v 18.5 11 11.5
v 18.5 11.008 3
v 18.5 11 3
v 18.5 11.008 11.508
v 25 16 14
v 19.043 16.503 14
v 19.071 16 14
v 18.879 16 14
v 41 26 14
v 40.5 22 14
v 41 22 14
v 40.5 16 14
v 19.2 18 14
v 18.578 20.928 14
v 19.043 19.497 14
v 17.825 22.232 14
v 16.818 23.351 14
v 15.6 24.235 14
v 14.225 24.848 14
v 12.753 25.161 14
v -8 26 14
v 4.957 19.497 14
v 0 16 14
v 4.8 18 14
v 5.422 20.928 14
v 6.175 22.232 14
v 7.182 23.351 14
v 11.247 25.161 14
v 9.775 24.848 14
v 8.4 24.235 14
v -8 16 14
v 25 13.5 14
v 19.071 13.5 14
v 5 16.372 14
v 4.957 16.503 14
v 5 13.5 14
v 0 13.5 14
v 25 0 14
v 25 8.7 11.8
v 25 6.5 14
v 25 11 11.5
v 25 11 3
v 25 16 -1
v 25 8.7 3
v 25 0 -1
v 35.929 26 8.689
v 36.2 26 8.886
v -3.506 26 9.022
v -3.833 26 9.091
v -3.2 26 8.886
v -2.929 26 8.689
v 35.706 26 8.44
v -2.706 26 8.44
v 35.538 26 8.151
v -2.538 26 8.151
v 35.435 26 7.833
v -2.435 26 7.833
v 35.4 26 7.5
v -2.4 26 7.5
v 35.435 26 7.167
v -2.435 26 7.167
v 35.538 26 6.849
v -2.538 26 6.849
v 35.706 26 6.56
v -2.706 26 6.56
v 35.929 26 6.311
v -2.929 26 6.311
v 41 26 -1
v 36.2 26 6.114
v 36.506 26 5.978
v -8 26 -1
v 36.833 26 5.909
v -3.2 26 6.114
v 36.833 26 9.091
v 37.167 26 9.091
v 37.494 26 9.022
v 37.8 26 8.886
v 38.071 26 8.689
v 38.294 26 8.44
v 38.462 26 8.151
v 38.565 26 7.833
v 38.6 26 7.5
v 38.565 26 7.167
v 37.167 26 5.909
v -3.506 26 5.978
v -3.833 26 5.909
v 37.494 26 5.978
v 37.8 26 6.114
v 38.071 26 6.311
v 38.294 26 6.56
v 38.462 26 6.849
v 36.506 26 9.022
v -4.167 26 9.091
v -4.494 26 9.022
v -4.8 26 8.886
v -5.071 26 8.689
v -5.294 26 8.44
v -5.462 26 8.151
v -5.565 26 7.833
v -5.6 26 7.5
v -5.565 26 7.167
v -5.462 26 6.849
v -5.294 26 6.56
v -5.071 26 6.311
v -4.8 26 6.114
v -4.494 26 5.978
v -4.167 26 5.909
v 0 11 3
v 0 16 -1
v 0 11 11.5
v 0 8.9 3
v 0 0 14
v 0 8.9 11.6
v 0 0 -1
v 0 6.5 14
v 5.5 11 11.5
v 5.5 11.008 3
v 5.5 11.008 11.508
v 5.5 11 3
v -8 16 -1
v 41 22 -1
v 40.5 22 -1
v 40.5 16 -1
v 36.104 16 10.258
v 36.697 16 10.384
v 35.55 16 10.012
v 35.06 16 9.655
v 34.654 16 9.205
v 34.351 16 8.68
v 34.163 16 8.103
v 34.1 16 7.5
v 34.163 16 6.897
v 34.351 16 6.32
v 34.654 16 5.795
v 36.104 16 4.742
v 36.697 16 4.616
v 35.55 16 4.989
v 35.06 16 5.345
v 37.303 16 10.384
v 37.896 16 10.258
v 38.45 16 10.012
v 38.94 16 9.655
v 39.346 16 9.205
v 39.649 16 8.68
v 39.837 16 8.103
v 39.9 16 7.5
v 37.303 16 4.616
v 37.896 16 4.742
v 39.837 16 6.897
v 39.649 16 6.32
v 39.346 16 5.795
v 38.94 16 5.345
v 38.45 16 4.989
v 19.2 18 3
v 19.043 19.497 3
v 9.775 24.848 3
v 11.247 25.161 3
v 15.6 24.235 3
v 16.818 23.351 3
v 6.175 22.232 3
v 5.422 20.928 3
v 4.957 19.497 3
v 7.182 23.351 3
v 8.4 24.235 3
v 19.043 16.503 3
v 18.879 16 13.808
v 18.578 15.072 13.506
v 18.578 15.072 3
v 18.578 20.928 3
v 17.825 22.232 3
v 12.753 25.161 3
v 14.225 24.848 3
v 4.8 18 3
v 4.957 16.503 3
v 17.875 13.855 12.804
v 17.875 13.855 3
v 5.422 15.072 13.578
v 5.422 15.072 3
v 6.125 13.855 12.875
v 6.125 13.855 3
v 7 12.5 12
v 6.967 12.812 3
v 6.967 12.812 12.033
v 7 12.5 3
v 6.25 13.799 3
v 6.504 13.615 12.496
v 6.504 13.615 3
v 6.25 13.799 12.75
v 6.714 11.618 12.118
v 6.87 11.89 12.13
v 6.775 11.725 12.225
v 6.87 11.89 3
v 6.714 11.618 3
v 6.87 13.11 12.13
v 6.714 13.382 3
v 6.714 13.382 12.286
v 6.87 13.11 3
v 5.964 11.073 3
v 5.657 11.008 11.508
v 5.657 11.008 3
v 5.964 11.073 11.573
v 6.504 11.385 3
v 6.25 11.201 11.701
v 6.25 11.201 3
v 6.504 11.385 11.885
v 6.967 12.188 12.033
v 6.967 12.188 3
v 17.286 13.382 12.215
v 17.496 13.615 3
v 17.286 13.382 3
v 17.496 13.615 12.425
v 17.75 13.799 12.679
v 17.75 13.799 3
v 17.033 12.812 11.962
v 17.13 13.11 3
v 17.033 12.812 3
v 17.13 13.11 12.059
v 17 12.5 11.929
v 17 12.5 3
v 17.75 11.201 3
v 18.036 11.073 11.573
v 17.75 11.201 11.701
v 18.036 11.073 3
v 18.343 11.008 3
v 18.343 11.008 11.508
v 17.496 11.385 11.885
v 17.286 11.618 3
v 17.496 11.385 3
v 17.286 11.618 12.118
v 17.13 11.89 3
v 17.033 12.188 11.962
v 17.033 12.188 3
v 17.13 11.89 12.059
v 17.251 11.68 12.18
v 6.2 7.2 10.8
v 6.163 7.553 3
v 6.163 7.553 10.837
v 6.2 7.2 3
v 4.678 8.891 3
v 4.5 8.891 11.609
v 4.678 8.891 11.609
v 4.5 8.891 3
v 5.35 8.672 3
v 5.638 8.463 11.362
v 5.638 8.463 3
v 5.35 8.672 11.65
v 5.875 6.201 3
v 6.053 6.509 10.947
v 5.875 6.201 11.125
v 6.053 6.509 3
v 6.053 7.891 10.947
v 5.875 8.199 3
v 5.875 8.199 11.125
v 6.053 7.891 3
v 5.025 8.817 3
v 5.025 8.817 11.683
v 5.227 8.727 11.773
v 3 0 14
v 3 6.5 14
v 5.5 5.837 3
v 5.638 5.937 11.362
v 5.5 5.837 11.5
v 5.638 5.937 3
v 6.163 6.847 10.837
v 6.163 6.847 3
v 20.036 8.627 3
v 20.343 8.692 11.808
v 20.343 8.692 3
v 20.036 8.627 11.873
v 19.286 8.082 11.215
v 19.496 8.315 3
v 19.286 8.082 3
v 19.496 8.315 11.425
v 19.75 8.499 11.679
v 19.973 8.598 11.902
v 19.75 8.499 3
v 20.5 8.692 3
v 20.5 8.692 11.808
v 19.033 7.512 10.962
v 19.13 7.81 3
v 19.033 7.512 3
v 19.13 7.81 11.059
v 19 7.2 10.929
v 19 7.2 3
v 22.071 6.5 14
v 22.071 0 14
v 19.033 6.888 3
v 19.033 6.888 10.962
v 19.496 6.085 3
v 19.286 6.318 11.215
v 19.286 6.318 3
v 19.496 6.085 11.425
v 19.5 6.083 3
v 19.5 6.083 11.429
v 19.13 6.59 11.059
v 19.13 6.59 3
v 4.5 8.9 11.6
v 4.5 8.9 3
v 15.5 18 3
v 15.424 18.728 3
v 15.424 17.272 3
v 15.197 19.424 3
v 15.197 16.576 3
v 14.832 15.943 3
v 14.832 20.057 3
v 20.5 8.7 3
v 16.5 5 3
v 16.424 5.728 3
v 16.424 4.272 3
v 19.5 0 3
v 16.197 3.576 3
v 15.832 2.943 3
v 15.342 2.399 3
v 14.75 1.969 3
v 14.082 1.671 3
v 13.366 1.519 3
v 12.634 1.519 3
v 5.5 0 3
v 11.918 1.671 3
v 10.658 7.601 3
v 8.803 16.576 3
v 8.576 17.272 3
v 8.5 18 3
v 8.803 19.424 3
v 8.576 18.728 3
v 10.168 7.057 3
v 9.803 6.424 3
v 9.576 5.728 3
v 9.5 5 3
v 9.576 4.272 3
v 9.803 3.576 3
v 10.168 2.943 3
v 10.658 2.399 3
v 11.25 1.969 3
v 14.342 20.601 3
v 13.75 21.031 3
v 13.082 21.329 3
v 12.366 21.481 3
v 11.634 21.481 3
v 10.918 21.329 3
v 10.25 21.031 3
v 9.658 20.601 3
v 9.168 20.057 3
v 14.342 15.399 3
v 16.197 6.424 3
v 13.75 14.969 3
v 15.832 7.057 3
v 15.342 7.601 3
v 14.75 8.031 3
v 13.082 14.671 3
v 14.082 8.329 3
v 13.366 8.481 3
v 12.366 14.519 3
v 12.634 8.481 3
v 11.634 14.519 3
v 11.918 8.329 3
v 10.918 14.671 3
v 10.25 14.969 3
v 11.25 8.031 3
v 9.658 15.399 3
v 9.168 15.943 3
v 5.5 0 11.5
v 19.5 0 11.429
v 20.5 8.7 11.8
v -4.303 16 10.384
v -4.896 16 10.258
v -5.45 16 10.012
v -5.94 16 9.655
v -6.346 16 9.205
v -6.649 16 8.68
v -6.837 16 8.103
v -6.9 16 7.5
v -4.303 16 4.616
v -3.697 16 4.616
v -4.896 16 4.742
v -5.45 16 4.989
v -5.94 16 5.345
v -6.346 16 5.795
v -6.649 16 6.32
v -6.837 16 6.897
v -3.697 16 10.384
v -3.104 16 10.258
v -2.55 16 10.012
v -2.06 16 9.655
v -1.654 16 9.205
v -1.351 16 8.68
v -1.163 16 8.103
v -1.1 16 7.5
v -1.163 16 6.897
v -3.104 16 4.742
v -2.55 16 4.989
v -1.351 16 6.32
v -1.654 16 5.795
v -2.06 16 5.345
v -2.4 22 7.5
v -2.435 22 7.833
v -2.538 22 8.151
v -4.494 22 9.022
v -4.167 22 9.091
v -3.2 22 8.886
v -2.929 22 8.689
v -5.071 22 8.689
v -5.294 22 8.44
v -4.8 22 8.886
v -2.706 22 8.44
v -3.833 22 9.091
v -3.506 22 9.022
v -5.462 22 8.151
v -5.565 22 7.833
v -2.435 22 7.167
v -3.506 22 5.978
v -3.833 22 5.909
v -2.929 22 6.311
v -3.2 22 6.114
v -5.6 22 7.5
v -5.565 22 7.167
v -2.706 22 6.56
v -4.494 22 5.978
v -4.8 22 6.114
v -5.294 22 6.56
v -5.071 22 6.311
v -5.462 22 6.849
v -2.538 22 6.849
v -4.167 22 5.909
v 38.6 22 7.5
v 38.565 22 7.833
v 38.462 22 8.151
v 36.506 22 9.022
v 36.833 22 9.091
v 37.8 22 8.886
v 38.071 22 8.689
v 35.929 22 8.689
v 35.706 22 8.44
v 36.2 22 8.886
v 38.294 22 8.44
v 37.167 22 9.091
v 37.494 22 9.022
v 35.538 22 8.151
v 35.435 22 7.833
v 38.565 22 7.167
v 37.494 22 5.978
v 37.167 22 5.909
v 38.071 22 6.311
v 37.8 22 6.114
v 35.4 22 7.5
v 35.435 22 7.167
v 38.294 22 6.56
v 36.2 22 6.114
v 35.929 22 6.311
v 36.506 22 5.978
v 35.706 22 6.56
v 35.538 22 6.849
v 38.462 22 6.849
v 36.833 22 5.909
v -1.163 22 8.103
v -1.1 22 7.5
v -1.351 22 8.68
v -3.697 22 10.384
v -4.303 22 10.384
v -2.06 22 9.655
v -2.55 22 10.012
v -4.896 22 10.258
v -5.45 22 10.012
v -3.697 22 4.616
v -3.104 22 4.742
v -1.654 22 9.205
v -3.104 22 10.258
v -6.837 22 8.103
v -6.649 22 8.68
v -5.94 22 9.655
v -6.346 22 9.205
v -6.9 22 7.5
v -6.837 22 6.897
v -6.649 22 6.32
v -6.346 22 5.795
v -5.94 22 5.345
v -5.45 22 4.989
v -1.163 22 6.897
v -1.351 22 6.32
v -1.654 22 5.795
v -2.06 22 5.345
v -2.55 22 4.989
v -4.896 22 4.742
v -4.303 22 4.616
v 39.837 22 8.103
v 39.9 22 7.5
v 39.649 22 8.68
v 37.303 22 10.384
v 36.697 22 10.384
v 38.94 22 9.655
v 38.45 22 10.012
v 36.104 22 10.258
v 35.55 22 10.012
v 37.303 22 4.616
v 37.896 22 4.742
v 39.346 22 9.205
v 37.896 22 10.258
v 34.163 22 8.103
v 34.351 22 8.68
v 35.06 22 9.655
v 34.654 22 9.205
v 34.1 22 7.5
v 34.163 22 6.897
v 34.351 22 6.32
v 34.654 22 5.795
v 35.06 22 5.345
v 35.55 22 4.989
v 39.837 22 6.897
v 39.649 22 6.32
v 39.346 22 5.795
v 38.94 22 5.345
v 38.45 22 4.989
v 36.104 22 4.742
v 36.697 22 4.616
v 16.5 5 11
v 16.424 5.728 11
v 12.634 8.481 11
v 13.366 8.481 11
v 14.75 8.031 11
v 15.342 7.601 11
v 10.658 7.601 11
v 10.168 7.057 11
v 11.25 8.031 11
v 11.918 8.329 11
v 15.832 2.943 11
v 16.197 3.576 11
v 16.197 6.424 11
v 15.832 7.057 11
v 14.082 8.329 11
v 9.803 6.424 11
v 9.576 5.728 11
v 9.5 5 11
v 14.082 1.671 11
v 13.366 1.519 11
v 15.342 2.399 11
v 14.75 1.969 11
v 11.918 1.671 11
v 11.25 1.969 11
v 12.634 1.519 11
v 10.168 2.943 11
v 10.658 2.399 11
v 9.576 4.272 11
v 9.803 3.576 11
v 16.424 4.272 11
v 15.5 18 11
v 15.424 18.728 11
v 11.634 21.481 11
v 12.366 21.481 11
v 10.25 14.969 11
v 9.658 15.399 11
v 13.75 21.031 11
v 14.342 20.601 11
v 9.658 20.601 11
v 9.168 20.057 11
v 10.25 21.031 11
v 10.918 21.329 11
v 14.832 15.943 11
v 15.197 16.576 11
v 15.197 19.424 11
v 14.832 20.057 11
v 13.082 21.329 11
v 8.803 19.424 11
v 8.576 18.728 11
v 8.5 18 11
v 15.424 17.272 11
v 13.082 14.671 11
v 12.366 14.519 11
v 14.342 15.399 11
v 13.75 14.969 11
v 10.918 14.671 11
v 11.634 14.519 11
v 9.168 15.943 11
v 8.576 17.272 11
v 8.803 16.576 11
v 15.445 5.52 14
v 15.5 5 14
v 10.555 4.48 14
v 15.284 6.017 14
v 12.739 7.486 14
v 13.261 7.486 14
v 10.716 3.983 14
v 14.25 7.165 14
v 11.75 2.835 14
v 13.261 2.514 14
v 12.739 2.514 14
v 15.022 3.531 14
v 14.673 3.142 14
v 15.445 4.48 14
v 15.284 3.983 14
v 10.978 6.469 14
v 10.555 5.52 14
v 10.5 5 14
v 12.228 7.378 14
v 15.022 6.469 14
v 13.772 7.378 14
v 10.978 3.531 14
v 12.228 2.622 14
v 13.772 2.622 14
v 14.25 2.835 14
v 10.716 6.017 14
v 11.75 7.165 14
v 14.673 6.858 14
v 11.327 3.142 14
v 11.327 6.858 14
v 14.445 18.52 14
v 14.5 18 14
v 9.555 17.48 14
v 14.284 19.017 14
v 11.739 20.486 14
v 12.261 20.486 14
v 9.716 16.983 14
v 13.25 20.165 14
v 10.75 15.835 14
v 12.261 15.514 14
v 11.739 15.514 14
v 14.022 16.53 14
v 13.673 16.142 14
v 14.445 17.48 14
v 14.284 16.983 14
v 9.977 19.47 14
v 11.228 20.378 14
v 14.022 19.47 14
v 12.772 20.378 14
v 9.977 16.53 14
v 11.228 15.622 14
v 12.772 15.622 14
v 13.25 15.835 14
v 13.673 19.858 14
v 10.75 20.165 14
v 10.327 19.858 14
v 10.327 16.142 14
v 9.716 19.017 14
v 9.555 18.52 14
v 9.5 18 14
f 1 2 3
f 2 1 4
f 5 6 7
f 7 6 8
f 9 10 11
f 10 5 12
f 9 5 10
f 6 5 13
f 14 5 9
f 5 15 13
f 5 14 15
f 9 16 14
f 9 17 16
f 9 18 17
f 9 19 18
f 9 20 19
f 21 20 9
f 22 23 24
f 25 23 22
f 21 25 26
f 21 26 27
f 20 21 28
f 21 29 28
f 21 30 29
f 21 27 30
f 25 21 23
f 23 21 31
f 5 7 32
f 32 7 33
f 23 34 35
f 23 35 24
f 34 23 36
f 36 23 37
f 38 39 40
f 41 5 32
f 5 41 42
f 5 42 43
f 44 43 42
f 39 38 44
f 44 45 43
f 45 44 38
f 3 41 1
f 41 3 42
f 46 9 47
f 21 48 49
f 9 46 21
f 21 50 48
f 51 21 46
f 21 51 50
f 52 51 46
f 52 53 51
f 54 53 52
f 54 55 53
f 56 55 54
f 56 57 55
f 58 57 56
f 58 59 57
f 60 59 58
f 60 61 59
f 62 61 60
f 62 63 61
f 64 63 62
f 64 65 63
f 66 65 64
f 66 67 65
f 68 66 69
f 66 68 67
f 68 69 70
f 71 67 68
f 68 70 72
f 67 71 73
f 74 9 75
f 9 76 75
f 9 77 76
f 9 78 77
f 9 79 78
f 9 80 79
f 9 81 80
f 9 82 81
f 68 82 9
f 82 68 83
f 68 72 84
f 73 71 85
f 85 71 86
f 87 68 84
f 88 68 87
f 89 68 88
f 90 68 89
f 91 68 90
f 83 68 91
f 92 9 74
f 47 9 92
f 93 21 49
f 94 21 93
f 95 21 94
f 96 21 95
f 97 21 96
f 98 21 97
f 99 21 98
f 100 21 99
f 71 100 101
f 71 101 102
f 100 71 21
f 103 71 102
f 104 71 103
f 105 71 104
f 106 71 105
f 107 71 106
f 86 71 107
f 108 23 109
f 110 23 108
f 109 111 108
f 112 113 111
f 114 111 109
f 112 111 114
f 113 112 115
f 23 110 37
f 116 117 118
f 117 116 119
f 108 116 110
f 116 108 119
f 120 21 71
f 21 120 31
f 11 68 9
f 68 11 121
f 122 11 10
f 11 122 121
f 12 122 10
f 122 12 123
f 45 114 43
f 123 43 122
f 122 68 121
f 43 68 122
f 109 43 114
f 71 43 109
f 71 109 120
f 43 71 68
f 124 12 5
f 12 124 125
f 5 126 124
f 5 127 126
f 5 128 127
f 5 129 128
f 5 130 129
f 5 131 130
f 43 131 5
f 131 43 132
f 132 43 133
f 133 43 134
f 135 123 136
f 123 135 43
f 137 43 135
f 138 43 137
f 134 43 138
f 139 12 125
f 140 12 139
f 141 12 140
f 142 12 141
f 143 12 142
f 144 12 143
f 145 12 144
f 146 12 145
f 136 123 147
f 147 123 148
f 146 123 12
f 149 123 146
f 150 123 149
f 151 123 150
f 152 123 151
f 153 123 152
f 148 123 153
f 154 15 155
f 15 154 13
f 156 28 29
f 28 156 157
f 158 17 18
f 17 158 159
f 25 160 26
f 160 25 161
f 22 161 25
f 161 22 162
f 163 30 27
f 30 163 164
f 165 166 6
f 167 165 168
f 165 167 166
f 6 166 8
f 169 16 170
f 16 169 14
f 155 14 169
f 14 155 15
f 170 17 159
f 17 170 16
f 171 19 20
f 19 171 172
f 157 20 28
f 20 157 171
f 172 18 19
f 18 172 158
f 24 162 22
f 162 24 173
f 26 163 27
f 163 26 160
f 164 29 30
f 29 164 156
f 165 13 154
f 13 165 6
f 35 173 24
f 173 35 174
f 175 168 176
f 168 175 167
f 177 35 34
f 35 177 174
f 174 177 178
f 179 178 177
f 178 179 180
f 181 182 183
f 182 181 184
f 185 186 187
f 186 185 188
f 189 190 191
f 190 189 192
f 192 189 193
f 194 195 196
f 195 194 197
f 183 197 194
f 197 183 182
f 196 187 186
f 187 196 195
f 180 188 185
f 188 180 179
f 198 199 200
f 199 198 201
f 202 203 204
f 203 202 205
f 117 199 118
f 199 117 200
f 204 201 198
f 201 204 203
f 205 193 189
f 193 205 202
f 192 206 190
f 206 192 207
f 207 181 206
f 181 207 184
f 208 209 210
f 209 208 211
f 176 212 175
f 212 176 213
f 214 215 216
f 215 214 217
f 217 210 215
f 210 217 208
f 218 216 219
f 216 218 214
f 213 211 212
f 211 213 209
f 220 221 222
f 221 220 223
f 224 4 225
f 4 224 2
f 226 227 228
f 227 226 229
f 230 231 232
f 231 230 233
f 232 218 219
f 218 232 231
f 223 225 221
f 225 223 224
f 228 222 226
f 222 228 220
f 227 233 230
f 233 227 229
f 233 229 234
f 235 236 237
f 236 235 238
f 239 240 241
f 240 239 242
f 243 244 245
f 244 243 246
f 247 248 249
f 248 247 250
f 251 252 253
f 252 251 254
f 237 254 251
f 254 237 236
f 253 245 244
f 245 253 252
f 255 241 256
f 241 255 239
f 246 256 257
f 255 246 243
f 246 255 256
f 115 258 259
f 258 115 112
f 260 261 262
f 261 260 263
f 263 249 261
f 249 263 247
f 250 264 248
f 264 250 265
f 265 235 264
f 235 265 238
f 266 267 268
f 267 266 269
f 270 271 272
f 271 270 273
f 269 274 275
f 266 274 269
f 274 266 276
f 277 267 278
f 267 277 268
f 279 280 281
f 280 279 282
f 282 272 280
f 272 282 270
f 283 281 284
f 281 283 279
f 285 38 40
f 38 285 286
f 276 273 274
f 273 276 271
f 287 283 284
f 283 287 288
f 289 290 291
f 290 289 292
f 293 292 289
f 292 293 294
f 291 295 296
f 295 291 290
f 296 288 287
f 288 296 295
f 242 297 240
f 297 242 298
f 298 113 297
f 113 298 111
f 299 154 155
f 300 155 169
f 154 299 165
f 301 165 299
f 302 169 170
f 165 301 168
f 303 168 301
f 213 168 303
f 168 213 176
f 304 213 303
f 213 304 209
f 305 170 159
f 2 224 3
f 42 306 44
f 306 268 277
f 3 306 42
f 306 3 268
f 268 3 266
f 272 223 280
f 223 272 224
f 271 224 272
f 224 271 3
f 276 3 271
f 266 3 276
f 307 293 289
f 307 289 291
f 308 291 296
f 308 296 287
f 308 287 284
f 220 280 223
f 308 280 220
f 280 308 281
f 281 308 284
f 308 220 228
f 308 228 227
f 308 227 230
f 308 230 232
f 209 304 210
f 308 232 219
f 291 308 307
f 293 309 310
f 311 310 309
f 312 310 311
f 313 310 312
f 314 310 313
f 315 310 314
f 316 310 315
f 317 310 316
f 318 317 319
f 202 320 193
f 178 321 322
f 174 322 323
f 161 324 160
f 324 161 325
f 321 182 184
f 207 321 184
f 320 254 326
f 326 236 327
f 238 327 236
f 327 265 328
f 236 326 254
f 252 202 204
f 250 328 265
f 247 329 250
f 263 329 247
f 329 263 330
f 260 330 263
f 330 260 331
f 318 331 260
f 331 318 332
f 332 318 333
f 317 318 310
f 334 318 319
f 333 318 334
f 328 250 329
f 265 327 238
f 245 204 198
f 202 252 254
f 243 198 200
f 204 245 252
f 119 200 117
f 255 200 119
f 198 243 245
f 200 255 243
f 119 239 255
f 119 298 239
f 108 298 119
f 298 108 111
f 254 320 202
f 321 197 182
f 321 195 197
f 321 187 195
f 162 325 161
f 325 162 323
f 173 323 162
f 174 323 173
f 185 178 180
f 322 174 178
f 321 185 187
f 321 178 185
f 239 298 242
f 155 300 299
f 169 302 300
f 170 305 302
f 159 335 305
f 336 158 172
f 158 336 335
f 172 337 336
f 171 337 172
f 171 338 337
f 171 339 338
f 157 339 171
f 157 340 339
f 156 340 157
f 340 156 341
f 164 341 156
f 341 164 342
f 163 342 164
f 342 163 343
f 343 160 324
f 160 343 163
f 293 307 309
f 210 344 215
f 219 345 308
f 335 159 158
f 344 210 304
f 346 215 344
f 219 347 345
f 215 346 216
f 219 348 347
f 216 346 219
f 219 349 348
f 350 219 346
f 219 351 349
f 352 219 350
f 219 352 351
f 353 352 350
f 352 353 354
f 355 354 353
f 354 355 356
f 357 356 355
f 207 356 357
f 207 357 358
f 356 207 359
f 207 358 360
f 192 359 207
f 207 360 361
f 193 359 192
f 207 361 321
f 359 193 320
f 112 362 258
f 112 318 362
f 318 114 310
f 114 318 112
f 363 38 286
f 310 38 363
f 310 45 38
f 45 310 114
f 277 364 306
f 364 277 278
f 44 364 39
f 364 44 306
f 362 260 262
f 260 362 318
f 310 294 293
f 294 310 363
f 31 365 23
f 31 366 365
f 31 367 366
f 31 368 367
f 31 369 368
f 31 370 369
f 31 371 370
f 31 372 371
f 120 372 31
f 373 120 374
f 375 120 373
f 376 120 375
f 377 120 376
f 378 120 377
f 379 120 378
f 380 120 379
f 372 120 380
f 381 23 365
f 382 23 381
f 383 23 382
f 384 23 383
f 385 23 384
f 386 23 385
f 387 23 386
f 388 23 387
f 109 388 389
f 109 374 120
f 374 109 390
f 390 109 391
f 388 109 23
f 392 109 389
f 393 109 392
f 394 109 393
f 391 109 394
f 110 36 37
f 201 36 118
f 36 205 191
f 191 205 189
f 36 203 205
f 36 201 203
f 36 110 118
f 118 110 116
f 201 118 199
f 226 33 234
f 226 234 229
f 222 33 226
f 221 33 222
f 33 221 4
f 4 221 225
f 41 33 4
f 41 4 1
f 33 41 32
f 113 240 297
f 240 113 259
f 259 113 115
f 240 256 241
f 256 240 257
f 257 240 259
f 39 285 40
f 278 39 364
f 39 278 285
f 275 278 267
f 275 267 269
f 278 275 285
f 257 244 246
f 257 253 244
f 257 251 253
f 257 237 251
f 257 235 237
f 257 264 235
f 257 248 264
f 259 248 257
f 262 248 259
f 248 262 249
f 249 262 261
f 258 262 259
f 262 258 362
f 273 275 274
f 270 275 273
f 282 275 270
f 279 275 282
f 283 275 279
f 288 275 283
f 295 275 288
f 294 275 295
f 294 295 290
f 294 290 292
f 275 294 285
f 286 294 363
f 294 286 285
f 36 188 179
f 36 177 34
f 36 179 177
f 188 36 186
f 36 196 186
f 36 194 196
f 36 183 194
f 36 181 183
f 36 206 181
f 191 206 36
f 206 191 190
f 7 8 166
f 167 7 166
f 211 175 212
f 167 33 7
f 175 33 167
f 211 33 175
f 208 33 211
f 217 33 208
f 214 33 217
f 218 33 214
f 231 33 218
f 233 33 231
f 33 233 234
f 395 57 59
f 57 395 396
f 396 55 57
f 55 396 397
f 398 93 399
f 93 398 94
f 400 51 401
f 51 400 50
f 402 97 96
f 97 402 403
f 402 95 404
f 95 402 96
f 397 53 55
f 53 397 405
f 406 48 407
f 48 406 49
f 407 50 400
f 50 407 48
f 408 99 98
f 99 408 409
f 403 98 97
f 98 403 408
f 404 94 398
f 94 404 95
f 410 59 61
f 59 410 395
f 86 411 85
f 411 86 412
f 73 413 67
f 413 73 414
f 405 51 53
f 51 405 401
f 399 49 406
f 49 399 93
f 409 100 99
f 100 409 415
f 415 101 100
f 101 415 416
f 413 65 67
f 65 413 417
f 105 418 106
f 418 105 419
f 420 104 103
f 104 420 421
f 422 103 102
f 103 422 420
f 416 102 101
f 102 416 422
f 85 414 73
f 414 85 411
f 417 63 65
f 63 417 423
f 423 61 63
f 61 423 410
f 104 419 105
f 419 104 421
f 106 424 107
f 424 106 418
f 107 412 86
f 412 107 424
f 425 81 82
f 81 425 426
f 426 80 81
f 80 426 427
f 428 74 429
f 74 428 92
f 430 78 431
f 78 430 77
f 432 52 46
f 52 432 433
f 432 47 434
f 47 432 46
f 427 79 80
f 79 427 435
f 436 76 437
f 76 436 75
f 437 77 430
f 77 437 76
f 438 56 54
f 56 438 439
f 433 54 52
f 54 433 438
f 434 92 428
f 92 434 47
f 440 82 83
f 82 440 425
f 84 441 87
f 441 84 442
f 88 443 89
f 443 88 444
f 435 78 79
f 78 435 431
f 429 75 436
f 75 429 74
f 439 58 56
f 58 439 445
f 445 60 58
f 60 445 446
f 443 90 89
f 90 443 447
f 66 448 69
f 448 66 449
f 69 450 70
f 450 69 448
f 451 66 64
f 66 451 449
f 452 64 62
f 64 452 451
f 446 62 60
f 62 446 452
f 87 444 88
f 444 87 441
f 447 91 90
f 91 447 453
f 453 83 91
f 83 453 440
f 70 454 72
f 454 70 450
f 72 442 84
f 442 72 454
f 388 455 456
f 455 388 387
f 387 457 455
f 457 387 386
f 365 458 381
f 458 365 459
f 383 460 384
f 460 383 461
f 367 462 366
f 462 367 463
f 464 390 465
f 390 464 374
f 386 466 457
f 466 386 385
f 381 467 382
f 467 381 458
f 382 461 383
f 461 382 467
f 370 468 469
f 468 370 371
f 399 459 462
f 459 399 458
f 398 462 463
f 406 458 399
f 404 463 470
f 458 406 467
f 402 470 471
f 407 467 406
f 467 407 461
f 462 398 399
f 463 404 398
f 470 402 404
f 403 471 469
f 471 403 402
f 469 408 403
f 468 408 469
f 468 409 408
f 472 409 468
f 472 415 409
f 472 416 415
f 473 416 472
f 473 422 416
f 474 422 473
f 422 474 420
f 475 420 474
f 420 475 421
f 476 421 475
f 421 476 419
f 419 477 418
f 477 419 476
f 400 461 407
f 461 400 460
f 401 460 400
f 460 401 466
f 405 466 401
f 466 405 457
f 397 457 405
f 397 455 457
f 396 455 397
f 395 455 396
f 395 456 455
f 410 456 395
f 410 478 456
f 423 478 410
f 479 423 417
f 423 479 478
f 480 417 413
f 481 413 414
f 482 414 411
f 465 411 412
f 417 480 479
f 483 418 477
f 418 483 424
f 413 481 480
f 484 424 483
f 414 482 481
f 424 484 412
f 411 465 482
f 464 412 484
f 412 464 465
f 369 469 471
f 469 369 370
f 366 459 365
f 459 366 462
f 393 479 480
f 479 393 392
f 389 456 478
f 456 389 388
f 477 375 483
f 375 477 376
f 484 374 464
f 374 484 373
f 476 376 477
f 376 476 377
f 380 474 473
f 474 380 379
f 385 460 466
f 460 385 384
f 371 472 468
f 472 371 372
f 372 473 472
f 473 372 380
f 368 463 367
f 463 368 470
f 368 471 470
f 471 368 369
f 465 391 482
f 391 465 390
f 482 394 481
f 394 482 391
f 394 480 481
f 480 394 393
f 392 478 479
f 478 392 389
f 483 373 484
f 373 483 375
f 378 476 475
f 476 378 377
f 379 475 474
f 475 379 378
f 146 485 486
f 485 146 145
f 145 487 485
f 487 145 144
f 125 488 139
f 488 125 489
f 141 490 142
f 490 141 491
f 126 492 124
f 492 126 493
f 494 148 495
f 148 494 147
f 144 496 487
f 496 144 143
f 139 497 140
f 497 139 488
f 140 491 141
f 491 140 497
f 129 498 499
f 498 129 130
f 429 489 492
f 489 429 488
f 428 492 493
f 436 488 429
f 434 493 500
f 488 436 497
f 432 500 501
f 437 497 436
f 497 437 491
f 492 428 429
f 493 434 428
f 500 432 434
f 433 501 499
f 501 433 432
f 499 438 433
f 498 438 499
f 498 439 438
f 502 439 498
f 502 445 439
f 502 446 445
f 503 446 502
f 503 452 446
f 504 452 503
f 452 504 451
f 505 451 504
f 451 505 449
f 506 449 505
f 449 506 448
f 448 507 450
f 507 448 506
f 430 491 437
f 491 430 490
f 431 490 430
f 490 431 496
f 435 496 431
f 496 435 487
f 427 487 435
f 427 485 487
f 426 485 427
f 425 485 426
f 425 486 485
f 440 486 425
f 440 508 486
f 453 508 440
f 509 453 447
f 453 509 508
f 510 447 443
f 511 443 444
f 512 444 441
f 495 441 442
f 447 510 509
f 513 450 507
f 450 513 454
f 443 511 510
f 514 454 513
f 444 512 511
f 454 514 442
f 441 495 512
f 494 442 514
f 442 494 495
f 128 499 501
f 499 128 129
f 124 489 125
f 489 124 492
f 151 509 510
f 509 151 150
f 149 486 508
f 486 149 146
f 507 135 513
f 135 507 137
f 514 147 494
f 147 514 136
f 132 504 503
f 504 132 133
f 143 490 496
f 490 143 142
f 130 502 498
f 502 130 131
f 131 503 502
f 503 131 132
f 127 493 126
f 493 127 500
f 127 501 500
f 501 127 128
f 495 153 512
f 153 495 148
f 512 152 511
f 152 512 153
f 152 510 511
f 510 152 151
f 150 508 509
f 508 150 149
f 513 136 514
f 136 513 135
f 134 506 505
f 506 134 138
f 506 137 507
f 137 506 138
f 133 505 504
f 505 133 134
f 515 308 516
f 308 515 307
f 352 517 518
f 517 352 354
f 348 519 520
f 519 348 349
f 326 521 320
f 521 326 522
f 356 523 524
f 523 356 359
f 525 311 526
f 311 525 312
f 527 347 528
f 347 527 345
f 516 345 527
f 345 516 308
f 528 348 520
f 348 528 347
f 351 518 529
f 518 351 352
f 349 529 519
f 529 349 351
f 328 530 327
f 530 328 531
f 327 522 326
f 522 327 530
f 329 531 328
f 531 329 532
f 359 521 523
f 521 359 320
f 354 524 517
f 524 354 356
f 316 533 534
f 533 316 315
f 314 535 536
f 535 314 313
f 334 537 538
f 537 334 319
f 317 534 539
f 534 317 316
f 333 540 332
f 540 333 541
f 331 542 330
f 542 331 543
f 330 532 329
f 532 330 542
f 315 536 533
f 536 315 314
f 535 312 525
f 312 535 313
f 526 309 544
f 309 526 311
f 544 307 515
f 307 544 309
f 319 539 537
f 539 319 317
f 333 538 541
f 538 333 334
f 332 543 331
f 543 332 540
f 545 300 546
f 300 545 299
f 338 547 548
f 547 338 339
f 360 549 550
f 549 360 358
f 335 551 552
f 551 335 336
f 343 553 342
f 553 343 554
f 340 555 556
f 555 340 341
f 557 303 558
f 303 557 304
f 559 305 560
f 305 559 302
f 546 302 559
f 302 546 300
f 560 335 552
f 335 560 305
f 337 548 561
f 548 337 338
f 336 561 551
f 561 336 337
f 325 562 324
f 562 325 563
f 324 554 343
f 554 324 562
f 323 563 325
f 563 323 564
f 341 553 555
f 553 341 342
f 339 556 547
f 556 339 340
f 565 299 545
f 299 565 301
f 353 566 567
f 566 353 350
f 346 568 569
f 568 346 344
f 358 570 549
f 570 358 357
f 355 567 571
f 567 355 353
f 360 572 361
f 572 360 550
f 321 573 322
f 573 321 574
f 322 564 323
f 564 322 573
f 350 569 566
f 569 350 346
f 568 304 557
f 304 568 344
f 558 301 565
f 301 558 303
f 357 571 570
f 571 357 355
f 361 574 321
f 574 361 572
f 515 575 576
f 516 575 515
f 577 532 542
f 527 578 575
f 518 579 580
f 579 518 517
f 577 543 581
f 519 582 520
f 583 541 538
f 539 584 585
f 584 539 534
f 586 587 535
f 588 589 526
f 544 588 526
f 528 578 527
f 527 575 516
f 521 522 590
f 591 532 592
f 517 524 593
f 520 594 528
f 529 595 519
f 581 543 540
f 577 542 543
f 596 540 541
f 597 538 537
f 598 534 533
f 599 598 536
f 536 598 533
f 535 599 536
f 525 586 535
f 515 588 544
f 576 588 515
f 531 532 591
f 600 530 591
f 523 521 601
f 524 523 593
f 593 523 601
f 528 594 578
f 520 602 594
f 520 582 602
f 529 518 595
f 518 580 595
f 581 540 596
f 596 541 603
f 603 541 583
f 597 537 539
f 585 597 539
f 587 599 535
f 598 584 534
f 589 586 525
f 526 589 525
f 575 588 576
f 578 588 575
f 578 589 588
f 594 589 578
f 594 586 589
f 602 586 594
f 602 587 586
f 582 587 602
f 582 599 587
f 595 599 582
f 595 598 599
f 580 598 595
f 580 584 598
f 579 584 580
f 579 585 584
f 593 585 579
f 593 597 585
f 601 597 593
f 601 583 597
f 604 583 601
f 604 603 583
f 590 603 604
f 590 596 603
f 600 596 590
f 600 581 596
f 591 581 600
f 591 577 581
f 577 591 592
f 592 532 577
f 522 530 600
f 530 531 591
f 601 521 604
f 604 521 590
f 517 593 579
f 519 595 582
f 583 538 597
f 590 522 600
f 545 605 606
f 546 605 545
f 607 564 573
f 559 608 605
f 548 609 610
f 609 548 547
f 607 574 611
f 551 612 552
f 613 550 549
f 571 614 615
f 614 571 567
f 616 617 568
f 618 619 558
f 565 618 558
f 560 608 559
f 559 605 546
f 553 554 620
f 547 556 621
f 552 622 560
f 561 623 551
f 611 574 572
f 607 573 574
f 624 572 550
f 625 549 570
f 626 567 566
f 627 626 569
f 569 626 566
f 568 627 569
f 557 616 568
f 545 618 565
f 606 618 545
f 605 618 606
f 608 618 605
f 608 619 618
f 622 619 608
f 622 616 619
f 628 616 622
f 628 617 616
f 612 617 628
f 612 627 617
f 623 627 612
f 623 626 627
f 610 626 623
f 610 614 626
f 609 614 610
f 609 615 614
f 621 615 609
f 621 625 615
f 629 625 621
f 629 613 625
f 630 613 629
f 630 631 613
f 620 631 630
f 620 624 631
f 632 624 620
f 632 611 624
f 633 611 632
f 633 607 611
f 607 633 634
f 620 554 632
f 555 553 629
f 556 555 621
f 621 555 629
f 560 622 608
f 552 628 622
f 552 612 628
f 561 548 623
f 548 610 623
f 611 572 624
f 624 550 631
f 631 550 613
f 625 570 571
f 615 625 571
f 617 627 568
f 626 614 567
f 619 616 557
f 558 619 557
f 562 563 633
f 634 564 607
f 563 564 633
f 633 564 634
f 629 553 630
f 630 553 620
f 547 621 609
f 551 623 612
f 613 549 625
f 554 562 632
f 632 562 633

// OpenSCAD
// PRUSA iteration3
// Y belt holder
// GNU GPL v3
// Josef Průša <iam@josefprusa.cz> and contributors
// http://www.reprap.org/wiki/Prusa_Mendel
// http://prusamendel.org

module face_plate(){
     // face plate
    translate([ 0, 0, -1 ]) cube([ 25, 26, 4 ]); 
    translate([ -8, 22, -1 ]) cube([ 49, 4, 4 ]);
    
}

module upper_shape()
{
    union(){
        difference(){
            union(){
                //  upper body
                translate([ 18.5, 11, 2 ]) cube([ 6.5, 15, 12 ]);   
                translate([ 0, 11, 2 ]) cube([ 5.5, 15, 12 ]);   
                translate([ -8, 22, 2 ]) cube([ 49, 4, 12 ]);   
                translate([ 0, 13, 2 ]) cube([ 25, 13, 12 ]);   
                translate([ 25, 16, -1 ]) cube([ 15.5, 10, 15 ]);  
                }
                translate([ 12, 18, 0 ]) cylinder( h = 14, r = 7.2, $fn=30 );  // upper belt cutaway
            }

        translate([ 5.5, 12.5, 0 ]) cylinder( h = 14, r = 1.5, $fn=30 );  
        translate([ 18.5, 12.5, 0 ]) cylinder( h = 14, r = 1.5, $fn=30 ); 
        translate([ 4.5, 7.2, 0 ]) cylinder( h = 14, r = 1.7, $fn=30 );  
        translate([ 20.5, 7.2, 0 ]) cylinder( h = 14, r = 1.5, $fn=30 );  

        translate([ 0, 0, 3 ] ) cube([ 4.5, 8.9, 11 ]);  
        translate([ 20.5, 0, 2 ] ) cube([ 4.5, 8.7, 12] );  
        translate([ 1, 0, 3 ] ) cube([ 4.5, 7, 11 ]);  
        translate([ 19.5, 0, 2 ] ) cube([ 4.5, 7, 12 ]);  
        translate([ -8, 16, -1 ]) cube([ 8, 10, 15 ]);
        }
}


module screw_holes(){
    translate( [ -4 , 28 , 7.5 ] ) rotate([90,0,0]) cylinder( h = 10, r = 1.6, $fn=30);  //screw hole
    translate( [ 37 , 28 , 7.5 ] ) rotate([90,0,0]) cylinder( h = 10, r = 1.6, $fn=30);  //screw hole
    translate( [ -4 , 22 , 7.5 ] ) rotate([90,0,0]) cylinder( h = 10, r = 2.9, $fn=30);  //screw hole
    translate( [ 37 , 22 , 7.5 ] ) rotate([90,0,0]) cylinder( h = 10, r = 2.9, $fn=30);  //screw hole
}

module belt_insert_chamfer(){
    translate([ -2, 10, 10.5 ]) rotate([45,0,0]) cube([ 28, 5, 5 ]);  
    translate([ 3, -2, 14 ]) rotate([0,45,0]) cube([ 5, 12, 5 ]);  
    translate([ 15, -2, 14 ]) rotate([0,45,0]) cube([ 5, 12, 5 ]);  

    translate([ 4, 10, 15 ]) rotate([0,45,0]) cube([ 5, 7, 5 ]);  
    translate([ 13, 10, 15 ]) rotate([0,45,0]) cube([ 5, 6, 5 ]); 
}

module belt_holders(){
    translate([ 13, 5, 0 ]) cylinder( h=11, r=3.5, $fn=30 );  // lower belt holder
    translate([ 12, 18, 0 ]) cylinder( h=11, r=3.5, $fn=30 );  // upper belt holder
    
    translate([ 13, 5, 11 ]) cylinder( h=3 , r1=3.5, r2=2.5, $fn=30 );  // lower belt holder cone
    translate([ 12, 18, 11 ]) cylinder( h=3, r1=3.5, r2=2.5, $fn=30 );  // upper belt holder cone
    
    }


module final_part(){
    union(){
    difference(){ 
        upper_shape();
        belt_insert_chamfer(); 
        screw_holes();
    }
    belt_holders();
    face_plate();
    }
}

final_part();
